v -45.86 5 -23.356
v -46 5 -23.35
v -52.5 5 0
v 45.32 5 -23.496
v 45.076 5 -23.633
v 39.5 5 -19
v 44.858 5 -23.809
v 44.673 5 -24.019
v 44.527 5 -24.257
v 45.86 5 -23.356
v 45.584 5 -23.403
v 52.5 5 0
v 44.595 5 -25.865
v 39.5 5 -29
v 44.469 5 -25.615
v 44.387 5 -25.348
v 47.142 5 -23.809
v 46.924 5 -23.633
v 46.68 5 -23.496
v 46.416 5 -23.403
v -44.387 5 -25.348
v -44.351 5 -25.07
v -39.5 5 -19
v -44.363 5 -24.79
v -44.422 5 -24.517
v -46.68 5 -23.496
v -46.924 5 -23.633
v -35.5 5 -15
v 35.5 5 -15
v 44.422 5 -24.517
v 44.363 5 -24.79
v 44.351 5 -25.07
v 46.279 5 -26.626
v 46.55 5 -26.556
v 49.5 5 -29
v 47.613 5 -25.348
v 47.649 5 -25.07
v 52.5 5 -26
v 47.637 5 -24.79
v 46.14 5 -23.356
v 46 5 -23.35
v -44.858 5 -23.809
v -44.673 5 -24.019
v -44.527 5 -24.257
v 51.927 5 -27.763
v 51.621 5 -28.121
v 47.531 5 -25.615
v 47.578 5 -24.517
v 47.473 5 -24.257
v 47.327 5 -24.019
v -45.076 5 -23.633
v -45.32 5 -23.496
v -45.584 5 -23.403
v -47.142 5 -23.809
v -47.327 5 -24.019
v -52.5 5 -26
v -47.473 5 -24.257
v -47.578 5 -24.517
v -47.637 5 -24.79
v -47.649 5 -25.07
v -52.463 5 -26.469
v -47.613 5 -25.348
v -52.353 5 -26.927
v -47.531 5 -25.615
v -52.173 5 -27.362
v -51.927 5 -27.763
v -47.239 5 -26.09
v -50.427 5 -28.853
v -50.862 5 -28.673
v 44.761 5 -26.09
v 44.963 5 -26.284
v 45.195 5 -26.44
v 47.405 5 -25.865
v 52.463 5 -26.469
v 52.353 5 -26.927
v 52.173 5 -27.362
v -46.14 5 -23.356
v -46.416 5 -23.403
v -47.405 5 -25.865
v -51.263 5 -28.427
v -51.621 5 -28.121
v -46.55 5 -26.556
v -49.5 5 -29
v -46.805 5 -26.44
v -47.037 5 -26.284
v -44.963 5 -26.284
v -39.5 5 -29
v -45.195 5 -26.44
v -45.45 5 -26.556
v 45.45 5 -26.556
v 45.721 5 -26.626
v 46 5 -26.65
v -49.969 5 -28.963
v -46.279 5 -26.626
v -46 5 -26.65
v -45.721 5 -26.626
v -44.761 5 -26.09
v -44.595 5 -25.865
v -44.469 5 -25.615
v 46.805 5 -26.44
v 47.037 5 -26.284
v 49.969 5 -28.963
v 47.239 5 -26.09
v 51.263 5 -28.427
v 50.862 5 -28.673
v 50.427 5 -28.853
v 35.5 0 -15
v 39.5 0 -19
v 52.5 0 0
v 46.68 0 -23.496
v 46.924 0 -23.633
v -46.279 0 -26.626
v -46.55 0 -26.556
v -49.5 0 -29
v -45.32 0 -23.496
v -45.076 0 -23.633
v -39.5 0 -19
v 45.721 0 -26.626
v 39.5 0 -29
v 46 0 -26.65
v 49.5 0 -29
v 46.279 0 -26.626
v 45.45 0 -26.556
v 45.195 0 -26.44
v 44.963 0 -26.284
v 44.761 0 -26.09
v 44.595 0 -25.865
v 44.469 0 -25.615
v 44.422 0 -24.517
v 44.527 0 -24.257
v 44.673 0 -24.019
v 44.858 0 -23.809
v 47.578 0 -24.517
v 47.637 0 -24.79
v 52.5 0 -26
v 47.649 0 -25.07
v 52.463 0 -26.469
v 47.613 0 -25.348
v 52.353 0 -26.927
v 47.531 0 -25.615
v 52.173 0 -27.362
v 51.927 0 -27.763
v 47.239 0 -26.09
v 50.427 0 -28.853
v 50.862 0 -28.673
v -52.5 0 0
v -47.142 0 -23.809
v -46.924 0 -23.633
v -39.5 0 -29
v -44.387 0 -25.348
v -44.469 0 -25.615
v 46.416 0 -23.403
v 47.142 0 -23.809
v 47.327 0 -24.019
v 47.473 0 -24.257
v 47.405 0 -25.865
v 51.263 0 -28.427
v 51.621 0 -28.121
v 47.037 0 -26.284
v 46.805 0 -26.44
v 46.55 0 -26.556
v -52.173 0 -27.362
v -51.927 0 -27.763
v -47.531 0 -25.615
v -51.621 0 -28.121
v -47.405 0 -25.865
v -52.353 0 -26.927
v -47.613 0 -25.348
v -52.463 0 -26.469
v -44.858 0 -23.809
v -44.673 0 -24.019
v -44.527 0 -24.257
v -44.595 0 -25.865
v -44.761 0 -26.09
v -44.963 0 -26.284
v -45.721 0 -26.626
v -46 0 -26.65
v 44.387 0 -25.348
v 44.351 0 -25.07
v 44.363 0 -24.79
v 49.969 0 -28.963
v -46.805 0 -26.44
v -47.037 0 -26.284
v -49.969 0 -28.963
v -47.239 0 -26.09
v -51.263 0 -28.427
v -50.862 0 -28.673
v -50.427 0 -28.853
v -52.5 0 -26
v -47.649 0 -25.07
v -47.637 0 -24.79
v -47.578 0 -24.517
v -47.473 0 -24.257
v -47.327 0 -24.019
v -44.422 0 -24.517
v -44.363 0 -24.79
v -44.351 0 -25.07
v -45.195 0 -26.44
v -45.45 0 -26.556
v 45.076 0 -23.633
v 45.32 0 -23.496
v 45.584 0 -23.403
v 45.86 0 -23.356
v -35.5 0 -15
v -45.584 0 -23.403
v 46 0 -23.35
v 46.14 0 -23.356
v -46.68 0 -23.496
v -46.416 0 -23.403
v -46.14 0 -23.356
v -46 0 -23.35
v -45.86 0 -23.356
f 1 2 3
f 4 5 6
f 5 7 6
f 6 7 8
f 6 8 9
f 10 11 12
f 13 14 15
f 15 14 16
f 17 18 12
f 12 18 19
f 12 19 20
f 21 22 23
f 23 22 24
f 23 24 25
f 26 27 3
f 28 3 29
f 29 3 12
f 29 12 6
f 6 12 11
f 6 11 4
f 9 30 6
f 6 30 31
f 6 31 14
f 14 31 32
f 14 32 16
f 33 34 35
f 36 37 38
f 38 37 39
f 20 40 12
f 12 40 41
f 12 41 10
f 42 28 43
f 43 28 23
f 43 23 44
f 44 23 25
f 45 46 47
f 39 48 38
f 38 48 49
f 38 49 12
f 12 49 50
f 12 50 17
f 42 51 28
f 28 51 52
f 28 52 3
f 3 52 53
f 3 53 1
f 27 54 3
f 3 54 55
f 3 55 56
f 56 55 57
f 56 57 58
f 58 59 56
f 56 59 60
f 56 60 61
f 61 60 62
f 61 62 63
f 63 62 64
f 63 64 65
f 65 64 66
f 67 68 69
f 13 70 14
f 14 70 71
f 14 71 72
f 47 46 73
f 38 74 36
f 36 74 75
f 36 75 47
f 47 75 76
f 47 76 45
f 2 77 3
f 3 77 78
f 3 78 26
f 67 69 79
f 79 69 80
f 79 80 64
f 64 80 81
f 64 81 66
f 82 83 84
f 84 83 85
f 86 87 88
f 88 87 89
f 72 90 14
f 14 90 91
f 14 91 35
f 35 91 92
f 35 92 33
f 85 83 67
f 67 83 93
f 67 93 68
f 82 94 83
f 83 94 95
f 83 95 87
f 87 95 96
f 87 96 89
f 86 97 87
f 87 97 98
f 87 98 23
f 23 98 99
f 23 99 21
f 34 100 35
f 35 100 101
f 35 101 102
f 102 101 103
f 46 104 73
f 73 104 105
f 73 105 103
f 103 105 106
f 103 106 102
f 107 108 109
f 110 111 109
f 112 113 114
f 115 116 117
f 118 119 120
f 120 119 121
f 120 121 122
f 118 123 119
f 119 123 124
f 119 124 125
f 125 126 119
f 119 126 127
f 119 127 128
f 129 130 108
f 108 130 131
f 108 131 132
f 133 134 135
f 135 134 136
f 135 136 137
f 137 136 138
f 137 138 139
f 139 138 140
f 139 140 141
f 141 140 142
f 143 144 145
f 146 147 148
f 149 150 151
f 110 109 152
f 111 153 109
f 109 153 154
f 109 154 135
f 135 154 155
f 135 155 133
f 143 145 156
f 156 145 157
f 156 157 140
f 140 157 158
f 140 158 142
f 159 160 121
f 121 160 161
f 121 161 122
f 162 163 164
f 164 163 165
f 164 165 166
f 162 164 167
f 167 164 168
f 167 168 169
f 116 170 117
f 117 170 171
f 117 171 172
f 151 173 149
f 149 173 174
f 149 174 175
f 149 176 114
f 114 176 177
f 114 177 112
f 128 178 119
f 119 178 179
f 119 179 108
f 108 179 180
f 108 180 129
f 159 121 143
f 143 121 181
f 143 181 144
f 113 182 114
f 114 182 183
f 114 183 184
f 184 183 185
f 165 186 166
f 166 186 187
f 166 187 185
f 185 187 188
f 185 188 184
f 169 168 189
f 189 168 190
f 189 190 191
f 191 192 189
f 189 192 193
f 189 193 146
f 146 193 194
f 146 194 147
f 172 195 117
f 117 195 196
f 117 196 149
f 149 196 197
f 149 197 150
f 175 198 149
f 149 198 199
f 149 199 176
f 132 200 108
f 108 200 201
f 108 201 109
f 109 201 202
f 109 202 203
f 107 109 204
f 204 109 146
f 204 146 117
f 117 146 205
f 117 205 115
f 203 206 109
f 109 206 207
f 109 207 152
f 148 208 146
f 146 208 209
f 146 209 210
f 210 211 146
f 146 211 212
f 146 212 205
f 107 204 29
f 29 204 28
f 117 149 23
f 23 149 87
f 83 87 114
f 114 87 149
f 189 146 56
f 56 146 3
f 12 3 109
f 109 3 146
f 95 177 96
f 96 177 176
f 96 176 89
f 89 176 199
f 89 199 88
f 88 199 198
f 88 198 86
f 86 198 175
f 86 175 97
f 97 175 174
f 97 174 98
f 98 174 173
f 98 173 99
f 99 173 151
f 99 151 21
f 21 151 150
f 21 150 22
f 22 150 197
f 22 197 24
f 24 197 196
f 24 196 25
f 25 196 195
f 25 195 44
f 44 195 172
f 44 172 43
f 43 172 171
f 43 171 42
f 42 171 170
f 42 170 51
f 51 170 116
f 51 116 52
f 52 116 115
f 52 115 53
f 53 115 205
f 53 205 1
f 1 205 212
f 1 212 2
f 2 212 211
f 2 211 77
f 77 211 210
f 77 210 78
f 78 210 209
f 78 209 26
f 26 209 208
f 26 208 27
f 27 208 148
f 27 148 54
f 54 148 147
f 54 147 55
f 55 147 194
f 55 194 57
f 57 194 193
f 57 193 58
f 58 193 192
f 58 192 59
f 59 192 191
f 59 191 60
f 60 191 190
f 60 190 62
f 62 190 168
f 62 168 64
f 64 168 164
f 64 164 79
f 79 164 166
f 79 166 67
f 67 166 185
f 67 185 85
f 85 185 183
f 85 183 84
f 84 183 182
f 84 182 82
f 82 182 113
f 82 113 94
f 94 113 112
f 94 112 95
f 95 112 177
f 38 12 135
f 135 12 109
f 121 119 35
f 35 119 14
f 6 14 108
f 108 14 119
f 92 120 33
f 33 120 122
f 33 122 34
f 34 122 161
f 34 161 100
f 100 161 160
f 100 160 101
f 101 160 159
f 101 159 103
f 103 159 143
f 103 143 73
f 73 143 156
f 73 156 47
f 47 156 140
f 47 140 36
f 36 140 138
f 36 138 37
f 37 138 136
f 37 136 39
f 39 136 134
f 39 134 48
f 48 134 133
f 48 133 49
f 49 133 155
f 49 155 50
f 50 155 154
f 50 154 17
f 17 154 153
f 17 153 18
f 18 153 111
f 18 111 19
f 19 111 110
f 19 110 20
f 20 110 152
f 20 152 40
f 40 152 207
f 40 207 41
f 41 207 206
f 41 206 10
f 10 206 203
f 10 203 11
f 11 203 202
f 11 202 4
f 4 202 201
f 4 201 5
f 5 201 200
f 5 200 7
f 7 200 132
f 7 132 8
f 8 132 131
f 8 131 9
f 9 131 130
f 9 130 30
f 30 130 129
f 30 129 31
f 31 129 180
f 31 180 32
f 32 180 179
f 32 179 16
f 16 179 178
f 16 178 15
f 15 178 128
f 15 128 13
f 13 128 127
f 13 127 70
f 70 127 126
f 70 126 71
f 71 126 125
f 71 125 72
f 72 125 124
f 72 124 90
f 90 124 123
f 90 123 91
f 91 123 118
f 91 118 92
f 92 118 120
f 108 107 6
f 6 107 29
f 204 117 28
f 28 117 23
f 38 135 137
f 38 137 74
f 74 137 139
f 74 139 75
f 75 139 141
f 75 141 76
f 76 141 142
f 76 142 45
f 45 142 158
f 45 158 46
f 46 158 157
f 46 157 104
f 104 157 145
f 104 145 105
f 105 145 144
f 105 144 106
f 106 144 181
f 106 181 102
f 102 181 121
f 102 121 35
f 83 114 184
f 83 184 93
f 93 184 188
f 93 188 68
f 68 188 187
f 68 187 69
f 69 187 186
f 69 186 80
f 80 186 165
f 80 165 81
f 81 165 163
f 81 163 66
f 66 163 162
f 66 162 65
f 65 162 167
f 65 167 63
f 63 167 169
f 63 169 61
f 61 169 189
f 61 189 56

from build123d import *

# Parameters (mm, degrees)
SKETCH1_R           = 1.65
BOSS_EXTRUDE1_DEPTH = 5
CHAMFER1_SIZE       = 4
FILLET1_R           = 3


with BuildPart() as part:
    # Sketch1 → Boss-Extrude1 (new body)
    with BuildSketch(Plane(origin=(0, 0, 0), x_dir=(1, 0, 0), z_dir=(0, 1, 0))):
        Polygon((0, 0), (-52.5, 0), (-52.5, 29), (-39.5, 29), (-39.5, 15), (0, 15), align=None)
        with Locations(Location((-46, 25, 0), (0, 0, 270))):
            Circle(SKETCH1_R, mode=Mode.SUBTRACT)
    boss_extrude1 = extrude(amount=BOSS_EXTRUDE1_DEPTH)

    # Mirror1: Boss-Extrude1 across plane
    add(boss_extrude1.mirror(Plane(origin=(0, 0, 0), x_dir=(0, 0, 1), z_dir=(1, 0, 0))))

    # Chamfer1
    chamfer1_edges = [part.edges().sort_by_distance(p)[0] for p in [
        (-39.5, 2.5, -15),
        (39.5, 2.5, -15),
    ]]
    chamfer(chamfer1_edges, length=CHAMFER1_SIZE)

    # Fillet1
    fillet1_edges = [part.edges().sort_by_distance(p)[0] for p in [
        (-52.5, 2.5, -29),
        (52.5, 2.5, -29),
    ]]
    fillet(fillet1_edges, radius=FILLET1_R)


solid = part.part
